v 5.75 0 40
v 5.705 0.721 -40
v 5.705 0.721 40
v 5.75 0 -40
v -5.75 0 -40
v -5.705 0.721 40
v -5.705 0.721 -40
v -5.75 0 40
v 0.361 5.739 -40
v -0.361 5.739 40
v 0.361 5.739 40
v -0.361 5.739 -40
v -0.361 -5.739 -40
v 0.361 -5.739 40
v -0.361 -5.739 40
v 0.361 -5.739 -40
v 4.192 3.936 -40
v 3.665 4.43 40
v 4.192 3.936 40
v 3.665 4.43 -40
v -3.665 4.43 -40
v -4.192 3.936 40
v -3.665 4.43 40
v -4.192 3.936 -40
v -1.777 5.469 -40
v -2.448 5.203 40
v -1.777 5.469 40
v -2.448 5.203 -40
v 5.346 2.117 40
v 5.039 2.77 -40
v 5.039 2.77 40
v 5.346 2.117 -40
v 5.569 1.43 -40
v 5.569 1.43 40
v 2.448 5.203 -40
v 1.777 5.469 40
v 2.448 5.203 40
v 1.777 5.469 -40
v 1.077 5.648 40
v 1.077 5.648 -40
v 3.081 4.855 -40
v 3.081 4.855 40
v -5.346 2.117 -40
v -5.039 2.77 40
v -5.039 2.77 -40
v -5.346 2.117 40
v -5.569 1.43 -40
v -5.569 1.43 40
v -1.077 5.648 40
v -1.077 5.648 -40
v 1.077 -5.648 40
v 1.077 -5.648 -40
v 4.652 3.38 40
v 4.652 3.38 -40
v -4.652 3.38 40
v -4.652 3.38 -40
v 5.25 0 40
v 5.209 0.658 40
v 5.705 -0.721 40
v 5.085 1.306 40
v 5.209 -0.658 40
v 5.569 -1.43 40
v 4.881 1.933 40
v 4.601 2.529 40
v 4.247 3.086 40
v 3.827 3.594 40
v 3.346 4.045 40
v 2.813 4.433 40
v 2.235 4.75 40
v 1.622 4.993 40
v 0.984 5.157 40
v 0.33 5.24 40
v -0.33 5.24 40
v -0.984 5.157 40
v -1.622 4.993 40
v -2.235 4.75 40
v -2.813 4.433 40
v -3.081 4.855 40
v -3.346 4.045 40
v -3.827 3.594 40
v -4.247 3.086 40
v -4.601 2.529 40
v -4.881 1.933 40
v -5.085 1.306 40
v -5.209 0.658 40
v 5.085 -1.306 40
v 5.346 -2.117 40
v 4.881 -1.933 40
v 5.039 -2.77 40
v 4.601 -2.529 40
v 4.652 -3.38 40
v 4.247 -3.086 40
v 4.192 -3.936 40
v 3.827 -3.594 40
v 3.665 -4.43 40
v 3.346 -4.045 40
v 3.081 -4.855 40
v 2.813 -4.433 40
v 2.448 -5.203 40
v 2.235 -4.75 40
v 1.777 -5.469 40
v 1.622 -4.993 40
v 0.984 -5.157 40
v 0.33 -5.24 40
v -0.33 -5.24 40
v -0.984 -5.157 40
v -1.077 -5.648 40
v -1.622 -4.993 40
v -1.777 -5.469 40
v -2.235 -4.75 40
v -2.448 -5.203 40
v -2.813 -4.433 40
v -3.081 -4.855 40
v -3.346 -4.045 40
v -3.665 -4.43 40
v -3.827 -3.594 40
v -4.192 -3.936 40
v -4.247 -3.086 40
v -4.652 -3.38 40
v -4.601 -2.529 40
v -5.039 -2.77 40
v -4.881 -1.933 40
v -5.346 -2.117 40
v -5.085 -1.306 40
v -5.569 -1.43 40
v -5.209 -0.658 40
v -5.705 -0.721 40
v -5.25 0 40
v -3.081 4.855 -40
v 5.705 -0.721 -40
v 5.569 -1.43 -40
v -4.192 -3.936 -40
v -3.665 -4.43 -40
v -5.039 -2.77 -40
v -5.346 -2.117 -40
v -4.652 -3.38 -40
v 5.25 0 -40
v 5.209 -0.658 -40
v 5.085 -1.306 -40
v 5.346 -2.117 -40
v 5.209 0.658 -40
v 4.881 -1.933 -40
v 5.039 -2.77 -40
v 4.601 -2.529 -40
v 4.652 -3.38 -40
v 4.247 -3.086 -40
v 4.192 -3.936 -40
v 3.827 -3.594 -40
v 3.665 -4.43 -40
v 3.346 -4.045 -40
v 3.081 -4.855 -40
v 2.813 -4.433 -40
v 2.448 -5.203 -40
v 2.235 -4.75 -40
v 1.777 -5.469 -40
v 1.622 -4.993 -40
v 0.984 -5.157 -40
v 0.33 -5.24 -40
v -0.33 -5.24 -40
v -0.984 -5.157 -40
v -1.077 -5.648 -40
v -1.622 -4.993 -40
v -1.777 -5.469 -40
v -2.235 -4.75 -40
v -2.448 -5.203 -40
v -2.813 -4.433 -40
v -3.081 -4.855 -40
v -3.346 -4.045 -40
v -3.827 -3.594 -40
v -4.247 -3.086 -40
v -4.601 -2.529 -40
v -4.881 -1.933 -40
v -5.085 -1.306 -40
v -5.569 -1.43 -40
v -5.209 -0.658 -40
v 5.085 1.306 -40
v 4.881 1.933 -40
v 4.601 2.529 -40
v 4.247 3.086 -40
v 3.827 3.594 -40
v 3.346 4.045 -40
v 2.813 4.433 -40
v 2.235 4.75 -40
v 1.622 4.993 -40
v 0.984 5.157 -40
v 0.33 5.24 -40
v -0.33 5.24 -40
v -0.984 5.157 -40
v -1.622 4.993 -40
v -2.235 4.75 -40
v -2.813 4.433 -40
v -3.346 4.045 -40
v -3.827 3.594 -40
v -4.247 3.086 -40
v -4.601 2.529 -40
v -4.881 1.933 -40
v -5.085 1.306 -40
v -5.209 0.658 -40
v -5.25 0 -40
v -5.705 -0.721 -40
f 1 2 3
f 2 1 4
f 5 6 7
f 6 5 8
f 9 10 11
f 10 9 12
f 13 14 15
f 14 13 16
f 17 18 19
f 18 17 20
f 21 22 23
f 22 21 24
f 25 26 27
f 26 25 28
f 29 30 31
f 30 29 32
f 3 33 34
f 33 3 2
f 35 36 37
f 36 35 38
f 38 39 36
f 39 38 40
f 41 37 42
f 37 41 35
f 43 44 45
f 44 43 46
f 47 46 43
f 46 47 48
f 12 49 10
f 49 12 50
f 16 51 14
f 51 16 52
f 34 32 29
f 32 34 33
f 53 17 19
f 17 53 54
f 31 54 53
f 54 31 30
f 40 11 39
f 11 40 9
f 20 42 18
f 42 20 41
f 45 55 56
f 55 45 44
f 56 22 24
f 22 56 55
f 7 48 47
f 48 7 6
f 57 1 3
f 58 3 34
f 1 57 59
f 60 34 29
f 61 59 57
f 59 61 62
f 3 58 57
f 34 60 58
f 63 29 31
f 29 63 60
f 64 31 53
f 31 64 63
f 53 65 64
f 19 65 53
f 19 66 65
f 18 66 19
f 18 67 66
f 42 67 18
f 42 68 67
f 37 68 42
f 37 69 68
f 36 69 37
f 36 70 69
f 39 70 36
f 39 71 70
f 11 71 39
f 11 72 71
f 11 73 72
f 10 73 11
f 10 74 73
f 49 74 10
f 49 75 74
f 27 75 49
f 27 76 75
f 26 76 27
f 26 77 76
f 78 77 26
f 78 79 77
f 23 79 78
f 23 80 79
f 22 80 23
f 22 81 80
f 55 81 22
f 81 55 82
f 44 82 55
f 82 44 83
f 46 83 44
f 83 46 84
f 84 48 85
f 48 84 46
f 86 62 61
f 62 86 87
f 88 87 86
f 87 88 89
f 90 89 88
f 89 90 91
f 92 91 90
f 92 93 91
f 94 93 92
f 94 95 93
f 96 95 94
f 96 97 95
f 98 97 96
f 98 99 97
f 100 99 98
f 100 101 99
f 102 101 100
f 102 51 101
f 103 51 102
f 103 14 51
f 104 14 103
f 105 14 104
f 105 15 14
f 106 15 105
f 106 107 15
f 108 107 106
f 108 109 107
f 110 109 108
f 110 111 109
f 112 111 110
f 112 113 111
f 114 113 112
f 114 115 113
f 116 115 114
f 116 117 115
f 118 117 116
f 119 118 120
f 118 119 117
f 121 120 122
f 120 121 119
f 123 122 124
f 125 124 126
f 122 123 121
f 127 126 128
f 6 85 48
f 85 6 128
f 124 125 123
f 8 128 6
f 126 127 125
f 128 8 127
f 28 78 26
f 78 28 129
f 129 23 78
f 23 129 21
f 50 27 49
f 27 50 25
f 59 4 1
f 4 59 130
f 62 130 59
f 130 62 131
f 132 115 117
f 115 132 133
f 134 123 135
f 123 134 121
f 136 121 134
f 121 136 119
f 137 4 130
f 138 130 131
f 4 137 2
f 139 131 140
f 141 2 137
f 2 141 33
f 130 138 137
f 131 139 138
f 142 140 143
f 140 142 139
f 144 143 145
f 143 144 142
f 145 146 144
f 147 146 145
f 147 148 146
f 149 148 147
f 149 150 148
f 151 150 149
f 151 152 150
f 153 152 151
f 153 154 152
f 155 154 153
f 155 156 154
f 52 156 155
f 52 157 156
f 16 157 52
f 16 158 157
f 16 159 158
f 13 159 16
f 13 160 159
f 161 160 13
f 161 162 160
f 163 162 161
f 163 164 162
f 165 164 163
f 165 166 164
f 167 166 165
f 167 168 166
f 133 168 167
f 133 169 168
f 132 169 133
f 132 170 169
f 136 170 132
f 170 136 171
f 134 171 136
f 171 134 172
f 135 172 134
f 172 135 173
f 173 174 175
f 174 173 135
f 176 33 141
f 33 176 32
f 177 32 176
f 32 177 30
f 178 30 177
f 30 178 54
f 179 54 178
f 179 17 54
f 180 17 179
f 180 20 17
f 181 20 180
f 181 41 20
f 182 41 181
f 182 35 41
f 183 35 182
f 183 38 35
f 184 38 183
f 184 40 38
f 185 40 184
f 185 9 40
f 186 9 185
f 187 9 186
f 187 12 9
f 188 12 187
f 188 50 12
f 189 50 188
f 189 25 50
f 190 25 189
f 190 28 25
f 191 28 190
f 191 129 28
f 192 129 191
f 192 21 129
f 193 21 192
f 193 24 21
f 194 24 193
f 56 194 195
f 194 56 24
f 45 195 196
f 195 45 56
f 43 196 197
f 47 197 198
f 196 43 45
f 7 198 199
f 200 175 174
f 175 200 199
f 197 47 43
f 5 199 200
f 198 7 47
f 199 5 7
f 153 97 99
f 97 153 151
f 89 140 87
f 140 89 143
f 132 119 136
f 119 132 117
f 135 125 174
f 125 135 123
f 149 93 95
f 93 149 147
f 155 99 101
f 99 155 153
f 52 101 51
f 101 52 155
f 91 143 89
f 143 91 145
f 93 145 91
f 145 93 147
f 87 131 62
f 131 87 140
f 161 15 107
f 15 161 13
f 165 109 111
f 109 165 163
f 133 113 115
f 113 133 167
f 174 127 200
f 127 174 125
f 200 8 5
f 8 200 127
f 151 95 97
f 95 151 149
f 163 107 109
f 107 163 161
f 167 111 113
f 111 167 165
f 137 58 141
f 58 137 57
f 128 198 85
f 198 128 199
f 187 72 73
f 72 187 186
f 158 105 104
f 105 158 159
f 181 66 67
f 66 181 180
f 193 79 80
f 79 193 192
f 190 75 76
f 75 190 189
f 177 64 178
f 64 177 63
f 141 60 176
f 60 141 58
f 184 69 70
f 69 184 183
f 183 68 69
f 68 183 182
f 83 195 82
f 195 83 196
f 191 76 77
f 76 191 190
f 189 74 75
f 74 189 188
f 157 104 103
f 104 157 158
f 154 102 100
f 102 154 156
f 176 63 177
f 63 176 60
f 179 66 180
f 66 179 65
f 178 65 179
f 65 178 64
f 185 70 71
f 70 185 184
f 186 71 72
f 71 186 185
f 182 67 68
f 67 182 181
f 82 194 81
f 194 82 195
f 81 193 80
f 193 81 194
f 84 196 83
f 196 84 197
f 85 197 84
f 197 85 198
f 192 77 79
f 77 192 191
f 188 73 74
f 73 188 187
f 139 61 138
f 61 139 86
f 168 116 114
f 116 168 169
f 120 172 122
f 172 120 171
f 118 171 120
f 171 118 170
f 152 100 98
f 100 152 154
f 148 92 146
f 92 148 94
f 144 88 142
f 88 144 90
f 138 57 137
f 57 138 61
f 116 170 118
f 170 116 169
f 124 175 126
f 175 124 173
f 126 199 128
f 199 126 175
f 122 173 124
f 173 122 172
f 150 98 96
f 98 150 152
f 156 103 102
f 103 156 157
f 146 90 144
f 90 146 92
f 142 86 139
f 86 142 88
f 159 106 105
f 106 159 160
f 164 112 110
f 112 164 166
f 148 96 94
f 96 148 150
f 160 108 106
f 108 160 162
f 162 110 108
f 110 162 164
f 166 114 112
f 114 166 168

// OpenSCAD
$fn = 50;


difference() {
	union() {
		translate(v = [0, 0, -40.0000000000]) {
			cylinder(h = 80, r = 5.7500000000);
		}
	}
	union() {
		translate(v = [0, 0, -100.0000000000]) {
			cylinder(h = 200, r = 5.2500000000);
		}
	}
}
